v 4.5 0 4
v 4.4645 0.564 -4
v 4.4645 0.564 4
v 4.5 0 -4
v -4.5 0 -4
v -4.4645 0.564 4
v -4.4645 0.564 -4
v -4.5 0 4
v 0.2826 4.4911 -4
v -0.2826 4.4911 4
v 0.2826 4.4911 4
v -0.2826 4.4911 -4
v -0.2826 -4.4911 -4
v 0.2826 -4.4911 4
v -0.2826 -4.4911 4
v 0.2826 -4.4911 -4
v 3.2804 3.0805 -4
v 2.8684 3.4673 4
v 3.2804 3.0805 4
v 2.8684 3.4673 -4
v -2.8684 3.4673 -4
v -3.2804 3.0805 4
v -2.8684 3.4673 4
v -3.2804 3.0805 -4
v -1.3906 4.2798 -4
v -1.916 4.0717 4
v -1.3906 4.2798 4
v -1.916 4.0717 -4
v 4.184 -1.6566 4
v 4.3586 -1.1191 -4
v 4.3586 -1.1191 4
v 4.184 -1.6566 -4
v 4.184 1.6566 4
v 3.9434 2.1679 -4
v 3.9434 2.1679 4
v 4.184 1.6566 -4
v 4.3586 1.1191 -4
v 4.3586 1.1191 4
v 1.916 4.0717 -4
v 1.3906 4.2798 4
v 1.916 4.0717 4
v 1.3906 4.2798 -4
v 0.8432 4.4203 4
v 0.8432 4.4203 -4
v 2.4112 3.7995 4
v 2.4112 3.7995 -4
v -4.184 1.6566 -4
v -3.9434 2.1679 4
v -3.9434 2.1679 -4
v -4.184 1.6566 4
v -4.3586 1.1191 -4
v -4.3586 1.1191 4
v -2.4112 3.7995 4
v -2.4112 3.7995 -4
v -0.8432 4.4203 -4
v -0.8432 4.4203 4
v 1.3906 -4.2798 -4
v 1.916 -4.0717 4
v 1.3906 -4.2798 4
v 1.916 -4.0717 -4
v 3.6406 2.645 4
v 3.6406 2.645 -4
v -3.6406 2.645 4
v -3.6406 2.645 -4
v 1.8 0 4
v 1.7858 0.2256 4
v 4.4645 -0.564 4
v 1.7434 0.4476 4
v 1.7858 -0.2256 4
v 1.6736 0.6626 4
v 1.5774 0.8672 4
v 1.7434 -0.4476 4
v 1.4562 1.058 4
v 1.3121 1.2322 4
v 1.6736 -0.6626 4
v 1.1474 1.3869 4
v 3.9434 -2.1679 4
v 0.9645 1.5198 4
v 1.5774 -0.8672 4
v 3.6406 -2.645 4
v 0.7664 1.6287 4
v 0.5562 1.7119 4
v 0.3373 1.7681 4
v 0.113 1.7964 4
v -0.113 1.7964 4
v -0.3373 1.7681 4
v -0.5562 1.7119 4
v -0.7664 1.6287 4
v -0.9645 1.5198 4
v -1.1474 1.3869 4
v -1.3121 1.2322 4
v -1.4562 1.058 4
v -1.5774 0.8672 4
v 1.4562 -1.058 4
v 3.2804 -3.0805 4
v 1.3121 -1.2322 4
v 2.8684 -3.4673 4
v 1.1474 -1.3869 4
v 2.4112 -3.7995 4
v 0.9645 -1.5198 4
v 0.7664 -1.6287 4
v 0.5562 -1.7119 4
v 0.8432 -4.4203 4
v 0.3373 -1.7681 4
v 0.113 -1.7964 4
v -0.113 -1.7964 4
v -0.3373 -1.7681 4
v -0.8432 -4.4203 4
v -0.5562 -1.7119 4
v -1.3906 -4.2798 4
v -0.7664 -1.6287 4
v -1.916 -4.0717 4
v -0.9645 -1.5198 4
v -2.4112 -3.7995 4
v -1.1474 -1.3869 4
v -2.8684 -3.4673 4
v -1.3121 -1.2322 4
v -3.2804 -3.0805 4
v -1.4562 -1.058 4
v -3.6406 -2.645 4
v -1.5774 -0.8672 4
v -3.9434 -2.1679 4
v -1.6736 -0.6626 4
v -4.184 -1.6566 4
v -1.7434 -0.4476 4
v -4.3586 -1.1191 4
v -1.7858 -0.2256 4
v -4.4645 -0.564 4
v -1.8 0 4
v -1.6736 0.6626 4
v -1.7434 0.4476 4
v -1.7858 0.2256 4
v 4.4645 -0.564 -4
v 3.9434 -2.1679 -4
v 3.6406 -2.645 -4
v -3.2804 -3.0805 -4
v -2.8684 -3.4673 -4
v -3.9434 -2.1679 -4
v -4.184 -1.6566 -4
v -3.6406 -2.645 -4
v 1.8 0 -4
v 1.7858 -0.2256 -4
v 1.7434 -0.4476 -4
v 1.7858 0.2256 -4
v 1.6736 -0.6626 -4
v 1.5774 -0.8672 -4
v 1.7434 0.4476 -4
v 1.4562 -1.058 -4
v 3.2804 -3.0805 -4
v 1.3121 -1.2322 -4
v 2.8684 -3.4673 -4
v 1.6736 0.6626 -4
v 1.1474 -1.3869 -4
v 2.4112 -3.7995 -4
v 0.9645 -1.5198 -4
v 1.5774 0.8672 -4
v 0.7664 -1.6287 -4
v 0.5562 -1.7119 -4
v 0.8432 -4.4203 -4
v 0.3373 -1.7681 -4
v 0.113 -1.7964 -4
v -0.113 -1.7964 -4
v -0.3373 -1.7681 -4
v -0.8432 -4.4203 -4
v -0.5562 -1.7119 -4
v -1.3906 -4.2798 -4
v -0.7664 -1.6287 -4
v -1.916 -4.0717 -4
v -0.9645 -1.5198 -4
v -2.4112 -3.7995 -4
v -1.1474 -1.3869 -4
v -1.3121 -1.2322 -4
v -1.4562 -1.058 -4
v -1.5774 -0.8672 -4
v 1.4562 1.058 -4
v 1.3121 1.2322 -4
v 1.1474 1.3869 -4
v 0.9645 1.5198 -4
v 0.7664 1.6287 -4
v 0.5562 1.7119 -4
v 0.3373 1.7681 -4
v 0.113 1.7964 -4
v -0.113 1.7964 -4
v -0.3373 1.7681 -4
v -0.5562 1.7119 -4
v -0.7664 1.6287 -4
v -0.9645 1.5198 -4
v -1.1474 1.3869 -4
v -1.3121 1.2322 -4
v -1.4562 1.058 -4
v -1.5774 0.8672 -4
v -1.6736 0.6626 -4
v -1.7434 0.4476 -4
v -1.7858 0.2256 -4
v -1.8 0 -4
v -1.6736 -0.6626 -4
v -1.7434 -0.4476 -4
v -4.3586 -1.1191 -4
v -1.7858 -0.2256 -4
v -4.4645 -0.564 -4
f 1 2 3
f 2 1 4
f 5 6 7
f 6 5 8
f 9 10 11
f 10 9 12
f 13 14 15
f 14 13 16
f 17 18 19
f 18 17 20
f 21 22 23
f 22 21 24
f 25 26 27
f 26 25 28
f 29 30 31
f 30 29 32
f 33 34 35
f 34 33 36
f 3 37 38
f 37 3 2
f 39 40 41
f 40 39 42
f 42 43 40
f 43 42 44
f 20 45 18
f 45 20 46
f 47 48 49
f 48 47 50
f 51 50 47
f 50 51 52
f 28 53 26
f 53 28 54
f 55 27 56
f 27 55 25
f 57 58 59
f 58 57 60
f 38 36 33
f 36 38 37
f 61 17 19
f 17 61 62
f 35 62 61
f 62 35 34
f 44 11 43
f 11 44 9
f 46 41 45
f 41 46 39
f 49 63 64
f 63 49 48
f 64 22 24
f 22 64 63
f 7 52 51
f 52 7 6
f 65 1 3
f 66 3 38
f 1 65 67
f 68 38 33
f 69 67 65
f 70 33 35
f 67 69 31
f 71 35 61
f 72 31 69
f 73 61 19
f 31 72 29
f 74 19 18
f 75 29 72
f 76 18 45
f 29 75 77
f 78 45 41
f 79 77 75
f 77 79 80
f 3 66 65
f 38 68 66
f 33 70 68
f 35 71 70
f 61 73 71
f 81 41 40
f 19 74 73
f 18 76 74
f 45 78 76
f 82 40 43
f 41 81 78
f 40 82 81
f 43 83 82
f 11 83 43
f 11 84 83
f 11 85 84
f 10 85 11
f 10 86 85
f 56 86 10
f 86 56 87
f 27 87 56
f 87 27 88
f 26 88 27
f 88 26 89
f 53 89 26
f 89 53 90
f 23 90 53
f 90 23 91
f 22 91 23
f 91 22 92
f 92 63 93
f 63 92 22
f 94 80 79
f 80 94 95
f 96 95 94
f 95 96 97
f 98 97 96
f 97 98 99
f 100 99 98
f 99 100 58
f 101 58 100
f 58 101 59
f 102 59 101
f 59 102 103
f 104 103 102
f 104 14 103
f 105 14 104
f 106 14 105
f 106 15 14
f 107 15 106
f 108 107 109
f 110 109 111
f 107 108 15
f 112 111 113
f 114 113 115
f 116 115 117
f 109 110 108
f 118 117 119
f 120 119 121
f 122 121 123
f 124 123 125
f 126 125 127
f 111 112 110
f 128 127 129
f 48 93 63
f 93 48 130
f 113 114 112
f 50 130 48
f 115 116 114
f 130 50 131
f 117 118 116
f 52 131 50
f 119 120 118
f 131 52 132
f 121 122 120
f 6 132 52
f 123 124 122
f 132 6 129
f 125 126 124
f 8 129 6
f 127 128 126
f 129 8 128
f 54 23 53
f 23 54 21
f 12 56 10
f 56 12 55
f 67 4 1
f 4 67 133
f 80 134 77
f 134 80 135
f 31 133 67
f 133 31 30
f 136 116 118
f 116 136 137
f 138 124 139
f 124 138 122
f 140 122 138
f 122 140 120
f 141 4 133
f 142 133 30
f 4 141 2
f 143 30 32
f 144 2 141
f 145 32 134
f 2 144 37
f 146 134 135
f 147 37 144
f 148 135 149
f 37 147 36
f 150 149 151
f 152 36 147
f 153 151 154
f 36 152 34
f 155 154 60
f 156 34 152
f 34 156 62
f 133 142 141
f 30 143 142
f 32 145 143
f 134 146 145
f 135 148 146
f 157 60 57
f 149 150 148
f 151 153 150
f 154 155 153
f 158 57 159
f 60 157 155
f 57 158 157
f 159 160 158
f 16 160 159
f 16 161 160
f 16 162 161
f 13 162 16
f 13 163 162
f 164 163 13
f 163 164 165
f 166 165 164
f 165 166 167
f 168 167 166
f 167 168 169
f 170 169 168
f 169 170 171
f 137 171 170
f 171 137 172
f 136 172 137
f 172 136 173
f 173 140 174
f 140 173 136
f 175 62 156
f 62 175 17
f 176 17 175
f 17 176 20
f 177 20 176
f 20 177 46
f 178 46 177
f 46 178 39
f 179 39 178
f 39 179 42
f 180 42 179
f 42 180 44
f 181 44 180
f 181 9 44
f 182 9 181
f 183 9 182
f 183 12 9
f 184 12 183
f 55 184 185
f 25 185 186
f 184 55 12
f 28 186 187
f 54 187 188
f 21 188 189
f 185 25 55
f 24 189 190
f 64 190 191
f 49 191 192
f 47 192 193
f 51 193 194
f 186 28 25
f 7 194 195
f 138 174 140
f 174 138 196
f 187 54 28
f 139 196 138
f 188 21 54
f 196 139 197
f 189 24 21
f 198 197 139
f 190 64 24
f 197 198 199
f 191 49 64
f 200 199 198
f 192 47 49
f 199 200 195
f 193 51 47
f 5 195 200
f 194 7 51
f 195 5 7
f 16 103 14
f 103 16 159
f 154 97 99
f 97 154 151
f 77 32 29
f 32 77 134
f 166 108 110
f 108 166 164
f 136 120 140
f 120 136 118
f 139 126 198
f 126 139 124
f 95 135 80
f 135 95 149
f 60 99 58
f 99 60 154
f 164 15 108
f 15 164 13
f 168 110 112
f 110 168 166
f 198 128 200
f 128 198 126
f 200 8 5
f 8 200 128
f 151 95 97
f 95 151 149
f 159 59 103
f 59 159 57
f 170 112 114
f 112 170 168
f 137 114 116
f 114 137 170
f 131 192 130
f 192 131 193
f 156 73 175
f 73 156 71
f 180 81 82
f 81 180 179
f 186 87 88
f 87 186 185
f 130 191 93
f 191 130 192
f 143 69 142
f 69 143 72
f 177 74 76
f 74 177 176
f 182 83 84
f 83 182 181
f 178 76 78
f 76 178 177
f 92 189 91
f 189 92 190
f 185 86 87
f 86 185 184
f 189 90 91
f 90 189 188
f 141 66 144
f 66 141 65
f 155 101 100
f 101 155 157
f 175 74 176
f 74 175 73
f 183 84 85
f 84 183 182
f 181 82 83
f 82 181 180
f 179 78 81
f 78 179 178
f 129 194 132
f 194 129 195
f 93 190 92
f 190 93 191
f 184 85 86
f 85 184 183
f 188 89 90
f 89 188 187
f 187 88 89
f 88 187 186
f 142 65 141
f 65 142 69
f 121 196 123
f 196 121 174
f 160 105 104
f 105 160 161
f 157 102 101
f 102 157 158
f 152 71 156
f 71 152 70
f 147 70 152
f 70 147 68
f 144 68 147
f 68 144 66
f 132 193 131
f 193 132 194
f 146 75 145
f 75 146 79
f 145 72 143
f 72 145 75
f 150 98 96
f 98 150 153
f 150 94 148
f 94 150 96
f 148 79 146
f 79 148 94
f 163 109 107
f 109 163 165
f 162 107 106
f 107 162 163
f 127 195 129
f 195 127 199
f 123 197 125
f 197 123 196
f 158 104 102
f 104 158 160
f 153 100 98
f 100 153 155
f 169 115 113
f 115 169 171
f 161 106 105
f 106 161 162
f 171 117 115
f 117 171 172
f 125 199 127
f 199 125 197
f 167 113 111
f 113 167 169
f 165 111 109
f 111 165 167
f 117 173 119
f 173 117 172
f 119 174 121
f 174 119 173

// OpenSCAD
$fn = 50;


difference() {
	union() {
		translate(v = [0, 0, -4.0000000000]) {
			cylinder(h = 8, r = 4.5000000000);
		}
	}
	union() {
		translate(v = [0, 0, -100.0000000000]) {
			cylinder(h = 200, r = 1.8000000000);
		}
	}
}
